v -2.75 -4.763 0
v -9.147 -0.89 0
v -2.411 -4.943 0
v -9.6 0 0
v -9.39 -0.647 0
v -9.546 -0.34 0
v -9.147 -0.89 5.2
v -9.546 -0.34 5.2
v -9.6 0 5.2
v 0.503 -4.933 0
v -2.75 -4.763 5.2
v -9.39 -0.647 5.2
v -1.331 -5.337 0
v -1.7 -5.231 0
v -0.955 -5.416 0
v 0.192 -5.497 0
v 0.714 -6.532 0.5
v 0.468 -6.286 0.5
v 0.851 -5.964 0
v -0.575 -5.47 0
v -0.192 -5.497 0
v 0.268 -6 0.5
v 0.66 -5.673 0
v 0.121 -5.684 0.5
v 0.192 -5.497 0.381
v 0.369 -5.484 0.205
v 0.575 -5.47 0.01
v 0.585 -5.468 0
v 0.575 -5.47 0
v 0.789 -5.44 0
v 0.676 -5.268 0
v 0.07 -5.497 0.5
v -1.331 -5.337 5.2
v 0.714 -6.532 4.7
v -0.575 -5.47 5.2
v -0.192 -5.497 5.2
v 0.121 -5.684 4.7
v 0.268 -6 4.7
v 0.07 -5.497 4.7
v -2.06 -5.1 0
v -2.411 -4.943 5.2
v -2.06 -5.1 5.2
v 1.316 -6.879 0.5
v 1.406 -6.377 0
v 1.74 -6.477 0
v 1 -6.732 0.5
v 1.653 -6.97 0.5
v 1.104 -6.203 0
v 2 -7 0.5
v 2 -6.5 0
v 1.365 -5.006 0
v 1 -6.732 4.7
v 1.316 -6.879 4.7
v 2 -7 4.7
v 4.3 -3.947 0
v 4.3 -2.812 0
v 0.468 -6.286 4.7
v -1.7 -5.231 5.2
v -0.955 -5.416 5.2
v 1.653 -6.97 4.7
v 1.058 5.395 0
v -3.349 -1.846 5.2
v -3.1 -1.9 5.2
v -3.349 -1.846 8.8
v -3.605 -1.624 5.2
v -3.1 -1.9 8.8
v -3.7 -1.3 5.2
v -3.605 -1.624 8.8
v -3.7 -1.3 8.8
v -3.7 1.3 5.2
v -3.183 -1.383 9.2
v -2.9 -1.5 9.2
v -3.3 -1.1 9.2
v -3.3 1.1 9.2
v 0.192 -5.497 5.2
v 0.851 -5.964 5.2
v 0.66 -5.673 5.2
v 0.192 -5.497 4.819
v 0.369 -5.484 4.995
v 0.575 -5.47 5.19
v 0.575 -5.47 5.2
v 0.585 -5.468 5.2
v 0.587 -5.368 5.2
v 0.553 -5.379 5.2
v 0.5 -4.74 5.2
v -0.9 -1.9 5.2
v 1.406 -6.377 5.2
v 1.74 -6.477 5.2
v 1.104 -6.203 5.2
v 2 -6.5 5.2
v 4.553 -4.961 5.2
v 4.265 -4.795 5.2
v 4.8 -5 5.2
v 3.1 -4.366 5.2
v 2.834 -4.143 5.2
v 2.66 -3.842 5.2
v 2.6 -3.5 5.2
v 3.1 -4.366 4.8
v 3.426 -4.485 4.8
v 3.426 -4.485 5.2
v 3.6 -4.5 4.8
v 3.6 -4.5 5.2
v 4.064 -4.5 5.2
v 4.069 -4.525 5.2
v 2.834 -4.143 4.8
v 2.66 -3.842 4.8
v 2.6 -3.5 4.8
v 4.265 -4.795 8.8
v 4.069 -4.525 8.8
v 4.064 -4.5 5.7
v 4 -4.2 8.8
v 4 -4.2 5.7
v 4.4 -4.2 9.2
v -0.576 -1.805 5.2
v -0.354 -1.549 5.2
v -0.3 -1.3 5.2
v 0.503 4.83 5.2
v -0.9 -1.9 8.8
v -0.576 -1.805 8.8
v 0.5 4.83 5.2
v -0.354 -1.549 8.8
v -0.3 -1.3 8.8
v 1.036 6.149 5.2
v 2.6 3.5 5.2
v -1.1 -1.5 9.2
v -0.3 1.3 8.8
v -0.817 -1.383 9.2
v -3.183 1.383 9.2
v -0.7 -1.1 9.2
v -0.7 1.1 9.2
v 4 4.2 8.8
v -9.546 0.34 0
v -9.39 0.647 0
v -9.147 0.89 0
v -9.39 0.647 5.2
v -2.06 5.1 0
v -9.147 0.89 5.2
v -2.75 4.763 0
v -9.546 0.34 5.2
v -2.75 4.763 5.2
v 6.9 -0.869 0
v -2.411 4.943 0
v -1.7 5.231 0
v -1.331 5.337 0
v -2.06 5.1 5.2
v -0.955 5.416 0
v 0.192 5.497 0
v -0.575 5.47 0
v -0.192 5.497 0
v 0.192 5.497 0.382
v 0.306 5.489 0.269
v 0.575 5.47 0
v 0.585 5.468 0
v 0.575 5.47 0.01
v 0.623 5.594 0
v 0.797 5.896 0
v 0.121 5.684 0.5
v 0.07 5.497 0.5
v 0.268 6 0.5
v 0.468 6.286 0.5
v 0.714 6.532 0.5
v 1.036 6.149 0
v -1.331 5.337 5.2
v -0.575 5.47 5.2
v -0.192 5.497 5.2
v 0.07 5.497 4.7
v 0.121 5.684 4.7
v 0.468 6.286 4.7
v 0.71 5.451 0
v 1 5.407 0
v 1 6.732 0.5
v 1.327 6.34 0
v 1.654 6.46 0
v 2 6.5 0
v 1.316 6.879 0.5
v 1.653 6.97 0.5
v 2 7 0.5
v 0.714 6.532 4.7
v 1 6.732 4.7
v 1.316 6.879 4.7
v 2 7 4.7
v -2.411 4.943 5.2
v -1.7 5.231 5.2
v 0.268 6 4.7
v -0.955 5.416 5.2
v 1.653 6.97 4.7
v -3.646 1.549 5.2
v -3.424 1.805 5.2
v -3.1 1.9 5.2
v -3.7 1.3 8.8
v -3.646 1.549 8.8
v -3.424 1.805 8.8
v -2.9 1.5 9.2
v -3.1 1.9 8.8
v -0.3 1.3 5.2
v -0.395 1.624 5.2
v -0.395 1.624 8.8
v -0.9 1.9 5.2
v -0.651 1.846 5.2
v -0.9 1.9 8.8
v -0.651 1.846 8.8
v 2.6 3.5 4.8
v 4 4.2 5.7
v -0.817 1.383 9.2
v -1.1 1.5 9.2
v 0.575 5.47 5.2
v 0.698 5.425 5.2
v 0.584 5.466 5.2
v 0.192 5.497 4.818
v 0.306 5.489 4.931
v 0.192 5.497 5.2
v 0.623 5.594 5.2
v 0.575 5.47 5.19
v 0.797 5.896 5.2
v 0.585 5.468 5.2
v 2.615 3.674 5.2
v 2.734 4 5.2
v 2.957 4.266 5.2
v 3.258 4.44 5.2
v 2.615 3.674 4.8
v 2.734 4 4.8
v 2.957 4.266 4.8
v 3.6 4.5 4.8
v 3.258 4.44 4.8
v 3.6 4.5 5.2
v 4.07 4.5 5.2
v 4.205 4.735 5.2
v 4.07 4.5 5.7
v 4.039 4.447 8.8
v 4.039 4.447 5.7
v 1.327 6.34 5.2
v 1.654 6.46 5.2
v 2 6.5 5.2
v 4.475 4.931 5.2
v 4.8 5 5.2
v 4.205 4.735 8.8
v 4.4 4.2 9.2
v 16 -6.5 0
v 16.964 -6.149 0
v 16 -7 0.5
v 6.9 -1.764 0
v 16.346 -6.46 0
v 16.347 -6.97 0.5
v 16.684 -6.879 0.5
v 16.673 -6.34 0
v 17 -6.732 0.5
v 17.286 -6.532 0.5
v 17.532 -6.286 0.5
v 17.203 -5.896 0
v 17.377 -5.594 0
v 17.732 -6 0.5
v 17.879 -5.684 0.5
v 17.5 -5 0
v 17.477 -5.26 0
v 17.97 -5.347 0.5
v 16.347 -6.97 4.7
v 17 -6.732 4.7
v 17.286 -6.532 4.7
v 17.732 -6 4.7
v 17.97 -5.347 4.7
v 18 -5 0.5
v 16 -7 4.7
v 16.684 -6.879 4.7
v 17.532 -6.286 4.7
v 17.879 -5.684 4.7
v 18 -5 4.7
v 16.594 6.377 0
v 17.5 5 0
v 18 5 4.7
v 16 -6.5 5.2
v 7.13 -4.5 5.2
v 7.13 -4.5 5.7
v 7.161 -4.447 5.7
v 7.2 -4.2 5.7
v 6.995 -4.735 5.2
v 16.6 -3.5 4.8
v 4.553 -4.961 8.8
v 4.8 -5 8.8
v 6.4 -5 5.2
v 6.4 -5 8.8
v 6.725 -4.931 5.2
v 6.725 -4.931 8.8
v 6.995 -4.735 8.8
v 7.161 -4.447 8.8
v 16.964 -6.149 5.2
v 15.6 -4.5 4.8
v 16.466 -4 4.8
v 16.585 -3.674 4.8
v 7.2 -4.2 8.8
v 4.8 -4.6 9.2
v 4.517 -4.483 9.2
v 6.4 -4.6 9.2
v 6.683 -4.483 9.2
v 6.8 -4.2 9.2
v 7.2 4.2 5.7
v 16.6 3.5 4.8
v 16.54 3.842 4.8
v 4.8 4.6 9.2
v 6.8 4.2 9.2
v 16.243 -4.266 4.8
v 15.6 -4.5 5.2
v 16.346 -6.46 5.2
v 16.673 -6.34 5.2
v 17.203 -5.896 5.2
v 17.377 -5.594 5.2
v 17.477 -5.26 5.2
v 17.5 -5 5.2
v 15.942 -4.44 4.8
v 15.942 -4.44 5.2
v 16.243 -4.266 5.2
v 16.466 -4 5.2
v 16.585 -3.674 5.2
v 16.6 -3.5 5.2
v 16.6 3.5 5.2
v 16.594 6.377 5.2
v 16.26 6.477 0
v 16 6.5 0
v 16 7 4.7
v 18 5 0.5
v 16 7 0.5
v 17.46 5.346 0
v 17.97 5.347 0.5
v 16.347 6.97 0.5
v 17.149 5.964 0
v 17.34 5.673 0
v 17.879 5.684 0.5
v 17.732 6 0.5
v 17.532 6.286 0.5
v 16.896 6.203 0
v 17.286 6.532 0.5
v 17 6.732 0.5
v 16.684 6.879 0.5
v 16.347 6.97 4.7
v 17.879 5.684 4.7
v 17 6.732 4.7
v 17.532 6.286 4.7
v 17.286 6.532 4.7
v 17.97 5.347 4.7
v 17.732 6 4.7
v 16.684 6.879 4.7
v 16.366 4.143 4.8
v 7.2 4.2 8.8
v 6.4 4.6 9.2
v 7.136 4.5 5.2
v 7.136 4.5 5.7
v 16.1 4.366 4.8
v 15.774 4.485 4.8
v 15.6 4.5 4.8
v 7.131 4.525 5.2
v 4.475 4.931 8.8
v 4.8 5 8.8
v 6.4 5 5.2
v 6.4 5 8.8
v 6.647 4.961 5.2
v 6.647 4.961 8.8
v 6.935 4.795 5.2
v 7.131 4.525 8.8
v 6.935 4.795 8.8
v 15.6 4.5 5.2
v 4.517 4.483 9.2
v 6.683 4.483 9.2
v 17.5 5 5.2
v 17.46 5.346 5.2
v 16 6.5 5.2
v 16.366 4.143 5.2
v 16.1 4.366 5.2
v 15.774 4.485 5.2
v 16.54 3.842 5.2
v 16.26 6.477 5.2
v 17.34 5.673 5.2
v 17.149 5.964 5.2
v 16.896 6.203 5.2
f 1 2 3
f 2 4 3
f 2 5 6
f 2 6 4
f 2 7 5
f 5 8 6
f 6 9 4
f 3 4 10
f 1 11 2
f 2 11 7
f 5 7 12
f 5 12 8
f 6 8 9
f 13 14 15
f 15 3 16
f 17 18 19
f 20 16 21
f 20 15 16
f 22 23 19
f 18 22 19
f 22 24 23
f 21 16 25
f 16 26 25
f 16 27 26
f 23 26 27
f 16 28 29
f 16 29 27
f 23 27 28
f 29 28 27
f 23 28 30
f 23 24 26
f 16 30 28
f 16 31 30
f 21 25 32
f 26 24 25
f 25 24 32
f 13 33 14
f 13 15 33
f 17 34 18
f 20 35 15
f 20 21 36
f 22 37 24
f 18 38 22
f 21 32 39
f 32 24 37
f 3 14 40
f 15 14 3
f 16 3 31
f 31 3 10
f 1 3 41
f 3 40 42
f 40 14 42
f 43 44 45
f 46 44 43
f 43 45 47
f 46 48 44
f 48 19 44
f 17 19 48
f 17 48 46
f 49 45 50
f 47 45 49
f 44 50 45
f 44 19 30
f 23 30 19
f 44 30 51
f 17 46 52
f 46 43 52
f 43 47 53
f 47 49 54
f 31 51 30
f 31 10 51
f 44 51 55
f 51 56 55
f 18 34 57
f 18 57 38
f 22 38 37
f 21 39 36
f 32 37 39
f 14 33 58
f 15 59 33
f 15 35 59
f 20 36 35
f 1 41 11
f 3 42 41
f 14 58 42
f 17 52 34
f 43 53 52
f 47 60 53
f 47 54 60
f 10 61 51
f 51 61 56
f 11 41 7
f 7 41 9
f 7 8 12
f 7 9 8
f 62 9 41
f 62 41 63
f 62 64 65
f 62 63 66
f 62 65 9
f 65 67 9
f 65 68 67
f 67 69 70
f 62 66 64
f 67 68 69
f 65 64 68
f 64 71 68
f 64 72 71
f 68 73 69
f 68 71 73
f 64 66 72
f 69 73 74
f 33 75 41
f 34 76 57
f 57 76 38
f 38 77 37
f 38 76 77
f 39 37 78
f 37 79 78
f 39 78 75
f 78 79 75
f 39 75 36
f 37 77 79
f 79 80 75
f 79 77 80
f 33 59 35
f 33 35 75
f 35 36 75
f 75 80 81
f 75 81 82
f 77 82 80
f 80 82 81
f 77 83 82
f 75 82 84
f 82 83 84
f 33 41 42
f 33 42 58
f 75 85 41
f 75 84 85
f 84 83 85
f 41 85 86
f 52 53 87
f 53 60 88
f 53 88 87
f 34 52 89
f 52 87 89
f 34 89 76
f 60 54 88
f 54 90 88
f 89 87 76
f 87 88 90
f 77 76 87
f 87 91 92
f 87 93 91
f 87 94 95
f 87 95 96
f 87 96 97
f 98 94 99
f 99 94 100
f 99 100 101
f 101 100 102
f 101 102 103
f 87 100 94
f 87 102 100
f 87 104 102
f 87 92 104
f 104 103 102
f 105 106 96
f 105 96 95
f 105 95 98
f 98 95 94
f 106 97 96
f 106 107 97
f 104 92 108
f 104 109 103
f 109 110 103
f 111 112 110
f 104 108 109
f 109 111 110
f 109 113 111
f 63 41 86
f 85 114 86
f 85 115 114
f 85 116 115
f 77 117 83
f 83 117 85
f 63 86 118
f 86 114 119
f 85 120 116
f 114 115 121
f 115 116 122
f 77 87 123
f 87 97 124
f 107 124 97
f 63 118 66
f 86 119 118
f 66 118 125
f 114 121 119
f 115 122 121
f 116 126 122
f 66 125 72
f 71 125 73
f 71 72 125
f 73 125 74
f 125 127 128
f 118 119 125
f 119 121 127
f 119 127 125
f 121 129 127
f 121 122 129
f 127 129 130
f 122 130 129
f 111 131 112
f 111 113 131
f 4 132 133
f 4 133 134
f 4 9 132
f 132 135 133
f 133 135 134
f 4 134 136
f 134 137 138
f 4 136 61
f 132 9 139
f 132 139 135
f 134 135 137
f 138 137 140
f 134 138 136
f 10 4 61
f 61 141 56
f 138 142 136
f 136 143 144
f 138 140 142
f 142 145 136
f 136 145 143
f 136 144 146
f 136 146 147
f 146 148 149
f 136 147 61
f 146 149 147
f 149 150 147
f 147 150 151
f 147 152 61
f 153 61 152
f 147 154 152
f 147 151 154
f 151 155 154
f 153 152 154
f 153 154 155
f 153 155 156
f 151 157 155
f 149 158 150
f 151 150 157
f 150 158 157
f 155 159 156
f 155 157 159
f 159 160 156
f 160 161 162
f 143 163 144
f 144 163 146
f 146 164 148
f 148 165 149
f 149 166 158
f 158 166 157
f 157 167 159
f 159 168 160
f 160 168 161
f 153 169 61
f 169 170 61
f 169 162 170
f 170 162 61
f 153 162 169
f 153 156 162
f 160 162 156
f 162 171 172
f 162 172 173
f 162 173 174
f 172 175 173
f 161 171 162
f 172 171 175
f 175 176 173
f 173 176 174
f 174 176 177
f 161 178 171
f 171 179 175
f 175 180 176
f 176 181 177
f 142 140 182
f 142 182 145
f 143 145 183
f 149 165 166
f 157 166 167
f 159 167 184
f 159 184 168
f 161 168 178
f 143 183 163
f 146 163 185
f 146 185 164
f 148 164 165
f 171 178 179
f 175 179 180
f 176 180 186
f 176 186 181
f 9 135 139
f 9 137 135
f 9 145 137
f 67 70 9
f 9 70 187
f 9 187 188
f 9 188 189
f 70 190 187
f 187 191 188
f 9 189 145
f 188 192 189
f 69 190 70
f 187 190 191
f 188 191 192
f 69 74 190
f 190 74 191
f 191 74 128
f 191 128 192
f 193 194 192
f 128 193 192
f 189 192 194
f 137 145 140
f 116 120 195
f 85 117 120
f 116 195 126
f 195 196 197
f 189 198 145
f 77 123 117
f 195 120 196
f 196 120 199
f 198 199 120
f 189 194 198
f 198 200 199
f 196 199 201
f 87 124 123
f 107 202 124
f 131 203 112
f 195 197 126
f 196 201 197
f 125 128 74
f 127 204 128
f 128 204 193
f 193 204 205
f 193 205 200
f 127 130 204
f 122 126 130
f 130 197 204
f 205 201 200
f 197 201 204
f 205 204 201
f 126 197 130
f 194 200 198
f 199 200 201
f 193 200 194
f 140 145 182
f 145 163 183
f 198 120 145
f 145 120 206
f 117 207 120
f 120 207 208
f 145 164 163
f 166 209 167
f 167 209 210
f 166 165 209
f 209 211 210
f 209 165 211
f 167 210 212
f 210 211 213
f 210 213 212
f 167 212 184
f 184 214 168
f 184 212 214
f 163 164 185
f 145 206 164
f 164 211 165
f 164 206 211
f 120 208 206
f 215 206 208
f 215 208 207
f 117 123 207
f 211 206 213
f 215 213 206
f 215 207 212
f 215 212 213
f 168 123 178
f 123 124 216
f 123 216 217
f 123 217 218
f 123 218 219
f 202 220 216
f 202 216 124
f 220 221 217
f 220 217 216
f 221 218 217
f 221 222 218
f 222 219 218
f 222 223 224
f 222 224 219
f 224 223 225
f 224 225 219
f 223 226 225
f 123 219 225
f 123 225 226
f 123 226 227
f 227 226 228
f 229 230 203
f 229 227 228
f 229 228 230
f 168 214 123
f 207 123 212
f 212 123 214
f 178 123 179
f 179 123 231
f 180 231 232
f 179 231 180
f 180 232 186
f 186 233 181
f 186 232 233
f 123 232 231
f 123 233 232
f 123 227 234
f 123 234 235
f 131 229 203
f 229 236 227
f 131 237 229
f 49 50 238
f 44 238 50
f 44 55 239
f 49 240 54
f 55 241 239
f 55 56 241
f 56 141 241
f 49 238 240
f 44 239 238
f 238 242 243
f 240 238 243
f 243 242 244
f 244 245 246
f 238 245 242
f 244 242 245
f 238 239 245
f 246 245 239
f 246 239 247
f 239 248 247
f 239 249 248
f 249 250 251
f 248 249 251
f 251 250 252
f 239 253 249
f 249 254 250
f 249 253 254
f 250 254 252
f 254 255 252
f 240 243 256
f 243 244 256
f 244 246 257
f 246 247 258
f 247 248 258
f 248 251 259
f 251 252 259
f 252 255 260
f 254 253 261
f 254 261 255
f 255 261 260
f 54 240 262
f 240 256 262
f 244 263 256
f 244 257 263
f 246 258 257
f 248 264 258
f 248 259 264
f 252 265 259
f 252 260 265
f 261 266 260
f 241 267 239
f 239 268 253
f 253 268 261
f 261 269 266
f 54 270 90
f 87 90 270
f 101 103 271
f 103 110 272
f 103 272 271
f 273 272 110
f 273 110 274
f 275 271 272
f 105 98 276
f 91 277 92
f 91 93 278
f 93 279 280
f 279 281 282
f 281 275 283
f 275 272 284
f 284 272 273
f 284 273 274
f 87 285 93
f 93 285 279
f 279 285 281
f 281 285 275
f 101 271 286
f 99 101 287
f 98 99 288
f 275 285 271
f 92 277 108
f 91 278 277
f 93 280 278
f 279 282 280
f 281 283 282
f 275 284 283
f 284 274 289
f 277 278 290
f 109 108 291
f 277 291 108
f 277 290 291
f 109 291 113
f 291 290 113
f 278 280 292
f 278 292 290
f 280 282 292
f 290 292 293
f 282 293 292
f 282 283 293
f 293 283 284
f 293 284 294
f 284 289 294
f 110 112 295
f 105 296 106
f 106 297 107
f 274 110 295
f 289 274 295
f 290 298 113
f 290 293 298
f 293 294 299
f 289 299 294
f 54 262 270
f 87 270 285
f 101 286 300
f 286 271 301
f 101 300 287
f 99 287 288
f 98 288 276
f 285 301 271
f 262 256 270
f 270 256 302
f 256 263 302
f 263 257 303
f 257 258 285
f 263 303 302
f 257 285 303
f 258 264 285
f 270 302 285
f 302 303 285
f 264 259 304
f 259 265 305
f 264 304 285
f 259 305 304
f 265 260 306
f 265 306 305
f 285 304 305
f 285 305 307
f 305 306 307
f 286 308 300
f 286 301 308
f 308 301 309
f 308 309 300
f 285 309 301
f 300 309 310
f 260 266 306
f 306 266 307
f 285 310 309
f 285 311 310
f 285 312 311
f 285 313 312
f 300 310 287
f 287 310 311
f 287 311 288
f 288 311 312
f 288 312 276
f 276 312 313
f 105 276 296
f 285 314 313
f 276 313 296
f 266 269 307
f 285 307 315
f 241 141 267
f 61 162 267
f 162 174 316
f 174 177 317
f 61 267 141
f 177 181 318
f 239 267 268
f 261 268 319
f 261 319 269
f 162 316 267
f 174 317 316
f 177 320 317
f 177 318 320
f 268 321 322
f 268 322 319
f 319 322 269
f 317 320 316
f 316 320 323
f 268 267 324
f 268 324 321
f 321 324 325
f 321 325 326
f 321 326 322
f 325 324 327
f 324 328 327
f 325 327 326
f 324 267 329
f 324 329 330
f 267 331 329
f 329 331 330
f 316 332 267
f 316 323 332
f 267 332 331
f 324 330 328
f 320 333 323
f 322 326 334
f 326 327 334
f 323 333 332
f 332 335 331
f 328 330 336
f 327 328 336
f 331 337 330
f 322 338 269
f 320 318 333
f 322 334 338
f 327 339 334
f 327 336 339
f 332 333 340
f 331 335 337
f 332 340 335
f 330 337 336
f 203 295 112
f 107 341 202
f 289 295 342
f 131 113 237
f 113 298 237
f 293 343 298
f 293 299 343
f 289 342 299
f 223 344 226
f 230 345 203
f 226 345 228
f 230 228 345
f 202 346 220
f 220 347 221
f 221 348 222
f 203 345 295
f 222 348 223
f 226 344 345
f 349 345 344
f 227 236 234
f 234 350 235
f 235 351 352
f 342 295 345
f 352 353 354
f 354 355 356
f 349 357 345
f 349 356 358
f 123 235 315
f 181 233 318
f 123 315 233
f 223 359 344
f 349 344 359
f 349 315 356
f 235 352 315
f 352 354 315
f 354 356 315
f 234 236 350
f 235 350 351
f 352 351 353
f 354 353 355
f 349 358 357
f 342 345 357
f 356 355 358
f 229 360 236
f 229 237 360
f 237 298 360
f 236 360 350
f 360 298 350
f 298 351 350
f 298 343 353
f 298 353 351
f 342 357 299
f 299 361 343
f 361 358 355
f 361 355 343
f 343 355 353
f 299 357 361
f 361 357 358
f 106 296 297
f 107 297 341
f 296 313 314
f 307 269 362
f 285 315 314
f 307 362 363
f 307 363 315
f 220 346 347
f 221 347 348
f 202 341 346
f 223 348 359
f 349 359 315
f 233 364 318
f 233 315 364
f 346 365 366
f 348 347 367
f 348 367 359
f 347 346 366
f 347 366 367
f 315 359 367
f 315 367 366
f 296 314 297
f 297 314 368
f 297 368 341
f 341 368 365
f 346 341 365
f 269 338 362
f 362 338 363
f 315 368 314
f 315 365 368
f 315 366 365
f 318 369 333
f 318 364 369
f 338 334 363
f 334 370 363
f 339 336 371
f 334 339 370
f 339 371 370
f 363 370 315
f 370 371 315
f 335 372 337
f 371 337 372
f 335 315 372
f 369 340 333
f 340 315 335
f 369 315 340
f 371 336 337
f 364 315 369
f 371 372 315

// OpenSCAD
// file: _common.scad
// Hauntology Tabletop Print Kit — Shared Parametric Header (_common.scad)
// Ground rules (3D_BRIEF.md):
//   - Bed limit: 180 x 180 mm
//   - Layer height: 0.2 mm, nozzle: 0.4 mm, walls >= 1.6 mm
//   - Moving clearance: 0.3 mm; press/snap clearance: 0.15 mm
//   - Sticker pockets: 0.4 mm recessed with raised chamfered frame
//   - SG90 servo: 23 x 12.2 x 29 mm body, 32.5 mm flange, two M2 screws (27.5 mm c-c)
//   - ESP32 dev board: 55 x 28 mm footprint, USB cable exit

$fa = 4;
$fs = 0.35;

// --- Standard tolerances and print parameters ---
layer_h          = 0.2;
nozzle_d         = 0.4;
min_wall         = 1.6;
clear_move       = 0.3;
clear_fit        = 0.15;
sticker_depth    = 0.4;

// --- Relic Token interface dimensions ---
token_side_mm    = 40.0;
token_height_mm  = 6.0;
token_qr_mm      = 36.4; // 36 x 36 mm sticker + 0.2 mm margin per side
relic_base_d     = 33.0;
relic_Boss_d     = 23.4; // Underside boss on relic miniature
token_socket_d   = 24.0; // Matching 0.3 mm clearance socket on token top
token_socket_h   = 1.6;

// --- SG90 Micro Servo dimensions (including fit clearance) ---
sg90_body_w      = 23.2;
sg90_body_d      = 12.5;
sg90_body_h      = 22.5;
sg90_flange_w    = 32.8;
sg90_flange_h    = 2.6;
sg90_flange_z    = 16.0; // Distance from bottom of servo to underside of ears
sg90_hole_span   = 27.5;
sg90_m2_pilot_d  = 1.7;
sg90_shaft_off_x = -5.5; // Output shaft offset from body centre
sg90_boss_d      = 12.2;
sg90_cable_w     = 4.6;
sg90_cable_h     = 6.0;

// --- ESP32 DevKitC dimensions ---
esp32_w          = 55.6;
esp32_d          = 28.6;
esp32_h          = 14.0;
esp32_usb_w      = 12.0;
esp32_usb_h      = 7.0;

// --- Colour palette (from design/tokens.json) for preview ---
col_ink          = [11/255, 13/255, 16/255];
col_leather      = [107/255, 77/255, 51/255];
col_bone         = [233/255, 228/255, 216/255];
col_lantern      = [224/255, 164/255, 58/255];
col_ghost        = [159/255, 232/255, 208/255];
col_alarm        = [212/255, 96/255, 74/255];
col_silver       = [201/255, 201/255, 212/255];

// ============================================================================
// Geometric & Ornamental Primitives (Print-safe <= 45 deg overhangs)
// ============================================================================

// Rounded rectangle in 2D centered at origin
module rrect2d(w, d, r=2.0) {
  rc = min(r, min(w, d) / 2 - 0.05);
  offset(r = rc) square([w - 2*rc, d - 2*rc], center = true);
}

// Chamfered & rounded tabletop box sitting on z = 0 (prevents elephant's foot)
module chamfer_box(w, d, h, r=2.5, ch_bot=0.8, ch_top=0.8) {
  hull() {
    translate([0, 0, ch_bot])
      linear_extrude(height = max(0.2, h - ch_bot - ch_top))
        rrect2d(w, d, r);
    if (ch_bot > 0)
      linear_extrude(height = 0.05)
        rrect2d(w - 2*ch_bot, d - 2*ch_bot, max(0.4, r - ch_bot));
    if (ch_top > 0)
      translate([0, 0, h - 0.05])
        linear_extrude(height = 0.05)
          rrect2d(w - 2*ch_top, d - 2*ch_top, max(0.4, r - ch_top));
  }
}

// Recessed 0.4 mm rectangular sticker pocket (subtract from top/front face)
module sticker_pocket_rect(w, d, r=1.2, depth=sticker_depth) {
  translate([0, 0, -depth])
    linear_extrude(height = depth + 0.5)
      rrect2d(w, d, r);
}

// Recessed 0.4 mm circular/oval sticker pocket
module sticker_pocket_oval(rx, ry, depth=sticker_depth) {
  translate([0, 0, -depth])
    linear_extrude(height = depth + 0.5)
      scale([rx, ry]) circle(r = 1);
}

// Stepped circular tabletop miniature pedestal base that locks into a Relic Token
// Print-safe: underside uses a chamfered annular ring sitting flat on z = 0
// with an outer 33 mm skirt and inner 23.4 mm ring that mates with the Token top groove.
module relic_pedestal_base(h = 6.5) {
  difference() {
    union() {
      // Lower plinth ring with 45-deg elephant-foot bevel
      cylinder(h = 1.2, d1 = relic_base_d - 1.2, d2 = relic_base_d);
      translate([0, 0, 1.2])
        cylinder(h = 1.8, d = relic_base_d);
      // 45-degree ogee step taper
      translate([0, 0, 3.0])
        cylinder(h = 1.6, d1 = relic_base_d, d2 = relic_base_d - 3.2);
      // Upper collar bead
      translate([0, 0, 4.6])
        cylinder(h = 1.0, d = relic_base_d - 2.4);
      translate([0, 0, 5.6])
        cylinder(h = max(0.6, h - 5.6), d1 = relic_base_d - 2.4, d2 = relic_base_d - 4.0);
    }
    // Underside annular alignment groove (leaves a flat z=0 outer rim AND inner plug so zero supports are needed!)
    translate([0, 0, -0.05])
      difference() {
        cylinder(h = 1.25, d = relic_base_d - 4.4);
        cylinder(h = 1.30, d = relic_Boss_d);
      }
  }
}

// SG90 servo cavity (subtract from a cradle block)
module sg90_cutout(cable_dir = 1) {
  // Main body cavity
  translate([0, 0, -0.1])
    cube([sg90_body_w, sg90_body_d, sg90_body_h + 0.2], center = true);
  // Mounting ears slot
  translate([0, 0, sg90_flange_z * 0.5])
    cube([sg90_flange_w, sg90_body_d, sg90_flange_h + 0.4], center = true);
  // Two M2 pilot screw holes
  for (sx = [-1, 1]) {
    translate([sx * sg90_hole_span / 2, 0, 0])
      cylinder(h = sg90_body_h + 12, d = sg90_m2_pilot_d, center = true);
  }
  // Wire exit channel
  translate([cable_dir * (sg90_body_w / 2 + 4), 0, -sg90_body_h / 4])
    cube([10, sg90_cable_w, sg90_cable_h], center = true);
}

// Positive SG90 cradle mount block sitting on z = 0 (vertical servo orientation)
module sg90_cradle_block(wall = 2.8) {
  bw = sg90_flange_w + 2 * wall;
  bd = sg90_body_d + 2 * wall;
  bh = sg90_flange_z + sg90_flange_h;
  difference() {
    chamfer_box(bw, bd, bh, r = 2.0, ch_bot = 0.6, ch_top = 0.6);
    // Body slot
    translate([0, 0, bh / 2 + 1.6])
      cube([sg90_body_w, sg90_body_d, bh], center = true);
    // Ear recess at top
    translate([0, 0, bh - sg90_flange_h / 2 + 0.1])
      cube([sg90_flange_w, sg90_body_d, sg90_flange_h + 0.2], center = true);
    // M2 screw pilot holes
    for (sx = [-1, 1]) {
      translate([sx * sg90_hole_span / 2, 0, bh - 10])
        cylinder(h = 11, d = sg90_m2_pilot_d);
    }
    // Side wire exit channel
    translate([bw / 2 - wall / 2, 0, 6])
      cube([wall + 2, sg90_cable_w, 9], center = true);
  }
}

// Dovetail male tenon along Z axis (height h, neck n_w, flare f_w, depth d_len)
module dovetail_tenon(h, n_w = 6.0, f_w = 8.4, d_len = 4.0, ch = 0.4) {
  linear_extrude(height = h)
    polygon(points = [
      [-n_w/2, 0],
      [ n_w/2, 0],
      [ f_w/2, d_len - ch],
      [ f_w/2 - ch, d_len],
      [-f_w/2 + ch, d_len],
      [-f_w/2, d_len - ch]
    ]);
}

// Dovetail female mortise slot with 0.3 mm clearance
module dovetail_mortise(h, n_w = 6.0, f_w = 8.4, d_len = 4.0, clr = clear_move) {
  translate([0, -0.05, -0.05])
    linear_extrude(height = h + 0.1)
      polygon(points = [
        [-(n_w/2 + clr), 0],
        [ (n_w/2 + clr), 0],
        [ (f_w/2 + clr), d_len + clr + 0.05],
        [-(f_w/2 + clr), d_len + clr + 0.05]
      ]);
}

// Decorative plank groove lines on a vertical wall (width w, at z heights)
module plank_grooves_x(w, groove_d = 0.8, groove_h = 1.0) {
  rotate([45, 0, 0])
    cube([w, groove_d, groove_h], center = true);
}
// main file
// Hauntology Tabletop Print Kit — Prop #3: Haunt Needle (Hand-Clipped Red MAX Tab)
// Colour: Alarm (#d4604a, brick red)
// Size: 28 L x 15 W x 9 H mm
// Sticker details: Recessed "MAX" label sticker pocket (15 x 7.5 mm)
// Mechanism: Clips by hand onto dial plate rim detents at 8 (Quick), 10 (Classic), or 12 (Gentle)
// Print orientation: Flat on base (Z = 0), zero supports.

include <_common.scad>

module prop_03_max_tab() {
  difference() {
    union() {
      // 1. Outer flag body with recessed "MAX" sticker pocket (X = 0..18)
      translate([9.0, 0, 0])
        chamfer_box(18.0, 14.0, 5.2, r = 2.0, ch_bot = 0.5, ch_top = 0.5);

      // 2. Inward pointer arrow tip & detent key (X = -9..0)
      hull() {
        translate([0, 0, 0]) cylinder(h = 5.2, d = 11.0);
        translate([-8.5, 0, 0]) cylinder(h = 5.2, d = 2.2);
      }

      // 3. Detent key tooth & rear retention hook (clips onto dial plate rim with 0.3 mm clearance)
      translate([-2.0, 0, 0])
        chamfer_box(3.4, 3.8, 9.2, r = 0.6, ch_bot = 0.3, ch_top = 0.4);
      translate([5.6, 0, 0])
        chamfer_box(3.2, 10.0, 9.2, r = 0.8, ch_bot = 0.3, ch_top = 0.4);
    }

    // 4. Top 0.4 mm recessed sticker pocket for "MAX" label (14 x 9 mm)
    translate([9.6, 0, 5.2 - sticker_depth])
      linear_extrude(height = sticker_depth + 0.5)
        rrect2d(14.0, 9.0, r = 1.0);
  }
}

color(col_alarm) prop_03_max_tab();
